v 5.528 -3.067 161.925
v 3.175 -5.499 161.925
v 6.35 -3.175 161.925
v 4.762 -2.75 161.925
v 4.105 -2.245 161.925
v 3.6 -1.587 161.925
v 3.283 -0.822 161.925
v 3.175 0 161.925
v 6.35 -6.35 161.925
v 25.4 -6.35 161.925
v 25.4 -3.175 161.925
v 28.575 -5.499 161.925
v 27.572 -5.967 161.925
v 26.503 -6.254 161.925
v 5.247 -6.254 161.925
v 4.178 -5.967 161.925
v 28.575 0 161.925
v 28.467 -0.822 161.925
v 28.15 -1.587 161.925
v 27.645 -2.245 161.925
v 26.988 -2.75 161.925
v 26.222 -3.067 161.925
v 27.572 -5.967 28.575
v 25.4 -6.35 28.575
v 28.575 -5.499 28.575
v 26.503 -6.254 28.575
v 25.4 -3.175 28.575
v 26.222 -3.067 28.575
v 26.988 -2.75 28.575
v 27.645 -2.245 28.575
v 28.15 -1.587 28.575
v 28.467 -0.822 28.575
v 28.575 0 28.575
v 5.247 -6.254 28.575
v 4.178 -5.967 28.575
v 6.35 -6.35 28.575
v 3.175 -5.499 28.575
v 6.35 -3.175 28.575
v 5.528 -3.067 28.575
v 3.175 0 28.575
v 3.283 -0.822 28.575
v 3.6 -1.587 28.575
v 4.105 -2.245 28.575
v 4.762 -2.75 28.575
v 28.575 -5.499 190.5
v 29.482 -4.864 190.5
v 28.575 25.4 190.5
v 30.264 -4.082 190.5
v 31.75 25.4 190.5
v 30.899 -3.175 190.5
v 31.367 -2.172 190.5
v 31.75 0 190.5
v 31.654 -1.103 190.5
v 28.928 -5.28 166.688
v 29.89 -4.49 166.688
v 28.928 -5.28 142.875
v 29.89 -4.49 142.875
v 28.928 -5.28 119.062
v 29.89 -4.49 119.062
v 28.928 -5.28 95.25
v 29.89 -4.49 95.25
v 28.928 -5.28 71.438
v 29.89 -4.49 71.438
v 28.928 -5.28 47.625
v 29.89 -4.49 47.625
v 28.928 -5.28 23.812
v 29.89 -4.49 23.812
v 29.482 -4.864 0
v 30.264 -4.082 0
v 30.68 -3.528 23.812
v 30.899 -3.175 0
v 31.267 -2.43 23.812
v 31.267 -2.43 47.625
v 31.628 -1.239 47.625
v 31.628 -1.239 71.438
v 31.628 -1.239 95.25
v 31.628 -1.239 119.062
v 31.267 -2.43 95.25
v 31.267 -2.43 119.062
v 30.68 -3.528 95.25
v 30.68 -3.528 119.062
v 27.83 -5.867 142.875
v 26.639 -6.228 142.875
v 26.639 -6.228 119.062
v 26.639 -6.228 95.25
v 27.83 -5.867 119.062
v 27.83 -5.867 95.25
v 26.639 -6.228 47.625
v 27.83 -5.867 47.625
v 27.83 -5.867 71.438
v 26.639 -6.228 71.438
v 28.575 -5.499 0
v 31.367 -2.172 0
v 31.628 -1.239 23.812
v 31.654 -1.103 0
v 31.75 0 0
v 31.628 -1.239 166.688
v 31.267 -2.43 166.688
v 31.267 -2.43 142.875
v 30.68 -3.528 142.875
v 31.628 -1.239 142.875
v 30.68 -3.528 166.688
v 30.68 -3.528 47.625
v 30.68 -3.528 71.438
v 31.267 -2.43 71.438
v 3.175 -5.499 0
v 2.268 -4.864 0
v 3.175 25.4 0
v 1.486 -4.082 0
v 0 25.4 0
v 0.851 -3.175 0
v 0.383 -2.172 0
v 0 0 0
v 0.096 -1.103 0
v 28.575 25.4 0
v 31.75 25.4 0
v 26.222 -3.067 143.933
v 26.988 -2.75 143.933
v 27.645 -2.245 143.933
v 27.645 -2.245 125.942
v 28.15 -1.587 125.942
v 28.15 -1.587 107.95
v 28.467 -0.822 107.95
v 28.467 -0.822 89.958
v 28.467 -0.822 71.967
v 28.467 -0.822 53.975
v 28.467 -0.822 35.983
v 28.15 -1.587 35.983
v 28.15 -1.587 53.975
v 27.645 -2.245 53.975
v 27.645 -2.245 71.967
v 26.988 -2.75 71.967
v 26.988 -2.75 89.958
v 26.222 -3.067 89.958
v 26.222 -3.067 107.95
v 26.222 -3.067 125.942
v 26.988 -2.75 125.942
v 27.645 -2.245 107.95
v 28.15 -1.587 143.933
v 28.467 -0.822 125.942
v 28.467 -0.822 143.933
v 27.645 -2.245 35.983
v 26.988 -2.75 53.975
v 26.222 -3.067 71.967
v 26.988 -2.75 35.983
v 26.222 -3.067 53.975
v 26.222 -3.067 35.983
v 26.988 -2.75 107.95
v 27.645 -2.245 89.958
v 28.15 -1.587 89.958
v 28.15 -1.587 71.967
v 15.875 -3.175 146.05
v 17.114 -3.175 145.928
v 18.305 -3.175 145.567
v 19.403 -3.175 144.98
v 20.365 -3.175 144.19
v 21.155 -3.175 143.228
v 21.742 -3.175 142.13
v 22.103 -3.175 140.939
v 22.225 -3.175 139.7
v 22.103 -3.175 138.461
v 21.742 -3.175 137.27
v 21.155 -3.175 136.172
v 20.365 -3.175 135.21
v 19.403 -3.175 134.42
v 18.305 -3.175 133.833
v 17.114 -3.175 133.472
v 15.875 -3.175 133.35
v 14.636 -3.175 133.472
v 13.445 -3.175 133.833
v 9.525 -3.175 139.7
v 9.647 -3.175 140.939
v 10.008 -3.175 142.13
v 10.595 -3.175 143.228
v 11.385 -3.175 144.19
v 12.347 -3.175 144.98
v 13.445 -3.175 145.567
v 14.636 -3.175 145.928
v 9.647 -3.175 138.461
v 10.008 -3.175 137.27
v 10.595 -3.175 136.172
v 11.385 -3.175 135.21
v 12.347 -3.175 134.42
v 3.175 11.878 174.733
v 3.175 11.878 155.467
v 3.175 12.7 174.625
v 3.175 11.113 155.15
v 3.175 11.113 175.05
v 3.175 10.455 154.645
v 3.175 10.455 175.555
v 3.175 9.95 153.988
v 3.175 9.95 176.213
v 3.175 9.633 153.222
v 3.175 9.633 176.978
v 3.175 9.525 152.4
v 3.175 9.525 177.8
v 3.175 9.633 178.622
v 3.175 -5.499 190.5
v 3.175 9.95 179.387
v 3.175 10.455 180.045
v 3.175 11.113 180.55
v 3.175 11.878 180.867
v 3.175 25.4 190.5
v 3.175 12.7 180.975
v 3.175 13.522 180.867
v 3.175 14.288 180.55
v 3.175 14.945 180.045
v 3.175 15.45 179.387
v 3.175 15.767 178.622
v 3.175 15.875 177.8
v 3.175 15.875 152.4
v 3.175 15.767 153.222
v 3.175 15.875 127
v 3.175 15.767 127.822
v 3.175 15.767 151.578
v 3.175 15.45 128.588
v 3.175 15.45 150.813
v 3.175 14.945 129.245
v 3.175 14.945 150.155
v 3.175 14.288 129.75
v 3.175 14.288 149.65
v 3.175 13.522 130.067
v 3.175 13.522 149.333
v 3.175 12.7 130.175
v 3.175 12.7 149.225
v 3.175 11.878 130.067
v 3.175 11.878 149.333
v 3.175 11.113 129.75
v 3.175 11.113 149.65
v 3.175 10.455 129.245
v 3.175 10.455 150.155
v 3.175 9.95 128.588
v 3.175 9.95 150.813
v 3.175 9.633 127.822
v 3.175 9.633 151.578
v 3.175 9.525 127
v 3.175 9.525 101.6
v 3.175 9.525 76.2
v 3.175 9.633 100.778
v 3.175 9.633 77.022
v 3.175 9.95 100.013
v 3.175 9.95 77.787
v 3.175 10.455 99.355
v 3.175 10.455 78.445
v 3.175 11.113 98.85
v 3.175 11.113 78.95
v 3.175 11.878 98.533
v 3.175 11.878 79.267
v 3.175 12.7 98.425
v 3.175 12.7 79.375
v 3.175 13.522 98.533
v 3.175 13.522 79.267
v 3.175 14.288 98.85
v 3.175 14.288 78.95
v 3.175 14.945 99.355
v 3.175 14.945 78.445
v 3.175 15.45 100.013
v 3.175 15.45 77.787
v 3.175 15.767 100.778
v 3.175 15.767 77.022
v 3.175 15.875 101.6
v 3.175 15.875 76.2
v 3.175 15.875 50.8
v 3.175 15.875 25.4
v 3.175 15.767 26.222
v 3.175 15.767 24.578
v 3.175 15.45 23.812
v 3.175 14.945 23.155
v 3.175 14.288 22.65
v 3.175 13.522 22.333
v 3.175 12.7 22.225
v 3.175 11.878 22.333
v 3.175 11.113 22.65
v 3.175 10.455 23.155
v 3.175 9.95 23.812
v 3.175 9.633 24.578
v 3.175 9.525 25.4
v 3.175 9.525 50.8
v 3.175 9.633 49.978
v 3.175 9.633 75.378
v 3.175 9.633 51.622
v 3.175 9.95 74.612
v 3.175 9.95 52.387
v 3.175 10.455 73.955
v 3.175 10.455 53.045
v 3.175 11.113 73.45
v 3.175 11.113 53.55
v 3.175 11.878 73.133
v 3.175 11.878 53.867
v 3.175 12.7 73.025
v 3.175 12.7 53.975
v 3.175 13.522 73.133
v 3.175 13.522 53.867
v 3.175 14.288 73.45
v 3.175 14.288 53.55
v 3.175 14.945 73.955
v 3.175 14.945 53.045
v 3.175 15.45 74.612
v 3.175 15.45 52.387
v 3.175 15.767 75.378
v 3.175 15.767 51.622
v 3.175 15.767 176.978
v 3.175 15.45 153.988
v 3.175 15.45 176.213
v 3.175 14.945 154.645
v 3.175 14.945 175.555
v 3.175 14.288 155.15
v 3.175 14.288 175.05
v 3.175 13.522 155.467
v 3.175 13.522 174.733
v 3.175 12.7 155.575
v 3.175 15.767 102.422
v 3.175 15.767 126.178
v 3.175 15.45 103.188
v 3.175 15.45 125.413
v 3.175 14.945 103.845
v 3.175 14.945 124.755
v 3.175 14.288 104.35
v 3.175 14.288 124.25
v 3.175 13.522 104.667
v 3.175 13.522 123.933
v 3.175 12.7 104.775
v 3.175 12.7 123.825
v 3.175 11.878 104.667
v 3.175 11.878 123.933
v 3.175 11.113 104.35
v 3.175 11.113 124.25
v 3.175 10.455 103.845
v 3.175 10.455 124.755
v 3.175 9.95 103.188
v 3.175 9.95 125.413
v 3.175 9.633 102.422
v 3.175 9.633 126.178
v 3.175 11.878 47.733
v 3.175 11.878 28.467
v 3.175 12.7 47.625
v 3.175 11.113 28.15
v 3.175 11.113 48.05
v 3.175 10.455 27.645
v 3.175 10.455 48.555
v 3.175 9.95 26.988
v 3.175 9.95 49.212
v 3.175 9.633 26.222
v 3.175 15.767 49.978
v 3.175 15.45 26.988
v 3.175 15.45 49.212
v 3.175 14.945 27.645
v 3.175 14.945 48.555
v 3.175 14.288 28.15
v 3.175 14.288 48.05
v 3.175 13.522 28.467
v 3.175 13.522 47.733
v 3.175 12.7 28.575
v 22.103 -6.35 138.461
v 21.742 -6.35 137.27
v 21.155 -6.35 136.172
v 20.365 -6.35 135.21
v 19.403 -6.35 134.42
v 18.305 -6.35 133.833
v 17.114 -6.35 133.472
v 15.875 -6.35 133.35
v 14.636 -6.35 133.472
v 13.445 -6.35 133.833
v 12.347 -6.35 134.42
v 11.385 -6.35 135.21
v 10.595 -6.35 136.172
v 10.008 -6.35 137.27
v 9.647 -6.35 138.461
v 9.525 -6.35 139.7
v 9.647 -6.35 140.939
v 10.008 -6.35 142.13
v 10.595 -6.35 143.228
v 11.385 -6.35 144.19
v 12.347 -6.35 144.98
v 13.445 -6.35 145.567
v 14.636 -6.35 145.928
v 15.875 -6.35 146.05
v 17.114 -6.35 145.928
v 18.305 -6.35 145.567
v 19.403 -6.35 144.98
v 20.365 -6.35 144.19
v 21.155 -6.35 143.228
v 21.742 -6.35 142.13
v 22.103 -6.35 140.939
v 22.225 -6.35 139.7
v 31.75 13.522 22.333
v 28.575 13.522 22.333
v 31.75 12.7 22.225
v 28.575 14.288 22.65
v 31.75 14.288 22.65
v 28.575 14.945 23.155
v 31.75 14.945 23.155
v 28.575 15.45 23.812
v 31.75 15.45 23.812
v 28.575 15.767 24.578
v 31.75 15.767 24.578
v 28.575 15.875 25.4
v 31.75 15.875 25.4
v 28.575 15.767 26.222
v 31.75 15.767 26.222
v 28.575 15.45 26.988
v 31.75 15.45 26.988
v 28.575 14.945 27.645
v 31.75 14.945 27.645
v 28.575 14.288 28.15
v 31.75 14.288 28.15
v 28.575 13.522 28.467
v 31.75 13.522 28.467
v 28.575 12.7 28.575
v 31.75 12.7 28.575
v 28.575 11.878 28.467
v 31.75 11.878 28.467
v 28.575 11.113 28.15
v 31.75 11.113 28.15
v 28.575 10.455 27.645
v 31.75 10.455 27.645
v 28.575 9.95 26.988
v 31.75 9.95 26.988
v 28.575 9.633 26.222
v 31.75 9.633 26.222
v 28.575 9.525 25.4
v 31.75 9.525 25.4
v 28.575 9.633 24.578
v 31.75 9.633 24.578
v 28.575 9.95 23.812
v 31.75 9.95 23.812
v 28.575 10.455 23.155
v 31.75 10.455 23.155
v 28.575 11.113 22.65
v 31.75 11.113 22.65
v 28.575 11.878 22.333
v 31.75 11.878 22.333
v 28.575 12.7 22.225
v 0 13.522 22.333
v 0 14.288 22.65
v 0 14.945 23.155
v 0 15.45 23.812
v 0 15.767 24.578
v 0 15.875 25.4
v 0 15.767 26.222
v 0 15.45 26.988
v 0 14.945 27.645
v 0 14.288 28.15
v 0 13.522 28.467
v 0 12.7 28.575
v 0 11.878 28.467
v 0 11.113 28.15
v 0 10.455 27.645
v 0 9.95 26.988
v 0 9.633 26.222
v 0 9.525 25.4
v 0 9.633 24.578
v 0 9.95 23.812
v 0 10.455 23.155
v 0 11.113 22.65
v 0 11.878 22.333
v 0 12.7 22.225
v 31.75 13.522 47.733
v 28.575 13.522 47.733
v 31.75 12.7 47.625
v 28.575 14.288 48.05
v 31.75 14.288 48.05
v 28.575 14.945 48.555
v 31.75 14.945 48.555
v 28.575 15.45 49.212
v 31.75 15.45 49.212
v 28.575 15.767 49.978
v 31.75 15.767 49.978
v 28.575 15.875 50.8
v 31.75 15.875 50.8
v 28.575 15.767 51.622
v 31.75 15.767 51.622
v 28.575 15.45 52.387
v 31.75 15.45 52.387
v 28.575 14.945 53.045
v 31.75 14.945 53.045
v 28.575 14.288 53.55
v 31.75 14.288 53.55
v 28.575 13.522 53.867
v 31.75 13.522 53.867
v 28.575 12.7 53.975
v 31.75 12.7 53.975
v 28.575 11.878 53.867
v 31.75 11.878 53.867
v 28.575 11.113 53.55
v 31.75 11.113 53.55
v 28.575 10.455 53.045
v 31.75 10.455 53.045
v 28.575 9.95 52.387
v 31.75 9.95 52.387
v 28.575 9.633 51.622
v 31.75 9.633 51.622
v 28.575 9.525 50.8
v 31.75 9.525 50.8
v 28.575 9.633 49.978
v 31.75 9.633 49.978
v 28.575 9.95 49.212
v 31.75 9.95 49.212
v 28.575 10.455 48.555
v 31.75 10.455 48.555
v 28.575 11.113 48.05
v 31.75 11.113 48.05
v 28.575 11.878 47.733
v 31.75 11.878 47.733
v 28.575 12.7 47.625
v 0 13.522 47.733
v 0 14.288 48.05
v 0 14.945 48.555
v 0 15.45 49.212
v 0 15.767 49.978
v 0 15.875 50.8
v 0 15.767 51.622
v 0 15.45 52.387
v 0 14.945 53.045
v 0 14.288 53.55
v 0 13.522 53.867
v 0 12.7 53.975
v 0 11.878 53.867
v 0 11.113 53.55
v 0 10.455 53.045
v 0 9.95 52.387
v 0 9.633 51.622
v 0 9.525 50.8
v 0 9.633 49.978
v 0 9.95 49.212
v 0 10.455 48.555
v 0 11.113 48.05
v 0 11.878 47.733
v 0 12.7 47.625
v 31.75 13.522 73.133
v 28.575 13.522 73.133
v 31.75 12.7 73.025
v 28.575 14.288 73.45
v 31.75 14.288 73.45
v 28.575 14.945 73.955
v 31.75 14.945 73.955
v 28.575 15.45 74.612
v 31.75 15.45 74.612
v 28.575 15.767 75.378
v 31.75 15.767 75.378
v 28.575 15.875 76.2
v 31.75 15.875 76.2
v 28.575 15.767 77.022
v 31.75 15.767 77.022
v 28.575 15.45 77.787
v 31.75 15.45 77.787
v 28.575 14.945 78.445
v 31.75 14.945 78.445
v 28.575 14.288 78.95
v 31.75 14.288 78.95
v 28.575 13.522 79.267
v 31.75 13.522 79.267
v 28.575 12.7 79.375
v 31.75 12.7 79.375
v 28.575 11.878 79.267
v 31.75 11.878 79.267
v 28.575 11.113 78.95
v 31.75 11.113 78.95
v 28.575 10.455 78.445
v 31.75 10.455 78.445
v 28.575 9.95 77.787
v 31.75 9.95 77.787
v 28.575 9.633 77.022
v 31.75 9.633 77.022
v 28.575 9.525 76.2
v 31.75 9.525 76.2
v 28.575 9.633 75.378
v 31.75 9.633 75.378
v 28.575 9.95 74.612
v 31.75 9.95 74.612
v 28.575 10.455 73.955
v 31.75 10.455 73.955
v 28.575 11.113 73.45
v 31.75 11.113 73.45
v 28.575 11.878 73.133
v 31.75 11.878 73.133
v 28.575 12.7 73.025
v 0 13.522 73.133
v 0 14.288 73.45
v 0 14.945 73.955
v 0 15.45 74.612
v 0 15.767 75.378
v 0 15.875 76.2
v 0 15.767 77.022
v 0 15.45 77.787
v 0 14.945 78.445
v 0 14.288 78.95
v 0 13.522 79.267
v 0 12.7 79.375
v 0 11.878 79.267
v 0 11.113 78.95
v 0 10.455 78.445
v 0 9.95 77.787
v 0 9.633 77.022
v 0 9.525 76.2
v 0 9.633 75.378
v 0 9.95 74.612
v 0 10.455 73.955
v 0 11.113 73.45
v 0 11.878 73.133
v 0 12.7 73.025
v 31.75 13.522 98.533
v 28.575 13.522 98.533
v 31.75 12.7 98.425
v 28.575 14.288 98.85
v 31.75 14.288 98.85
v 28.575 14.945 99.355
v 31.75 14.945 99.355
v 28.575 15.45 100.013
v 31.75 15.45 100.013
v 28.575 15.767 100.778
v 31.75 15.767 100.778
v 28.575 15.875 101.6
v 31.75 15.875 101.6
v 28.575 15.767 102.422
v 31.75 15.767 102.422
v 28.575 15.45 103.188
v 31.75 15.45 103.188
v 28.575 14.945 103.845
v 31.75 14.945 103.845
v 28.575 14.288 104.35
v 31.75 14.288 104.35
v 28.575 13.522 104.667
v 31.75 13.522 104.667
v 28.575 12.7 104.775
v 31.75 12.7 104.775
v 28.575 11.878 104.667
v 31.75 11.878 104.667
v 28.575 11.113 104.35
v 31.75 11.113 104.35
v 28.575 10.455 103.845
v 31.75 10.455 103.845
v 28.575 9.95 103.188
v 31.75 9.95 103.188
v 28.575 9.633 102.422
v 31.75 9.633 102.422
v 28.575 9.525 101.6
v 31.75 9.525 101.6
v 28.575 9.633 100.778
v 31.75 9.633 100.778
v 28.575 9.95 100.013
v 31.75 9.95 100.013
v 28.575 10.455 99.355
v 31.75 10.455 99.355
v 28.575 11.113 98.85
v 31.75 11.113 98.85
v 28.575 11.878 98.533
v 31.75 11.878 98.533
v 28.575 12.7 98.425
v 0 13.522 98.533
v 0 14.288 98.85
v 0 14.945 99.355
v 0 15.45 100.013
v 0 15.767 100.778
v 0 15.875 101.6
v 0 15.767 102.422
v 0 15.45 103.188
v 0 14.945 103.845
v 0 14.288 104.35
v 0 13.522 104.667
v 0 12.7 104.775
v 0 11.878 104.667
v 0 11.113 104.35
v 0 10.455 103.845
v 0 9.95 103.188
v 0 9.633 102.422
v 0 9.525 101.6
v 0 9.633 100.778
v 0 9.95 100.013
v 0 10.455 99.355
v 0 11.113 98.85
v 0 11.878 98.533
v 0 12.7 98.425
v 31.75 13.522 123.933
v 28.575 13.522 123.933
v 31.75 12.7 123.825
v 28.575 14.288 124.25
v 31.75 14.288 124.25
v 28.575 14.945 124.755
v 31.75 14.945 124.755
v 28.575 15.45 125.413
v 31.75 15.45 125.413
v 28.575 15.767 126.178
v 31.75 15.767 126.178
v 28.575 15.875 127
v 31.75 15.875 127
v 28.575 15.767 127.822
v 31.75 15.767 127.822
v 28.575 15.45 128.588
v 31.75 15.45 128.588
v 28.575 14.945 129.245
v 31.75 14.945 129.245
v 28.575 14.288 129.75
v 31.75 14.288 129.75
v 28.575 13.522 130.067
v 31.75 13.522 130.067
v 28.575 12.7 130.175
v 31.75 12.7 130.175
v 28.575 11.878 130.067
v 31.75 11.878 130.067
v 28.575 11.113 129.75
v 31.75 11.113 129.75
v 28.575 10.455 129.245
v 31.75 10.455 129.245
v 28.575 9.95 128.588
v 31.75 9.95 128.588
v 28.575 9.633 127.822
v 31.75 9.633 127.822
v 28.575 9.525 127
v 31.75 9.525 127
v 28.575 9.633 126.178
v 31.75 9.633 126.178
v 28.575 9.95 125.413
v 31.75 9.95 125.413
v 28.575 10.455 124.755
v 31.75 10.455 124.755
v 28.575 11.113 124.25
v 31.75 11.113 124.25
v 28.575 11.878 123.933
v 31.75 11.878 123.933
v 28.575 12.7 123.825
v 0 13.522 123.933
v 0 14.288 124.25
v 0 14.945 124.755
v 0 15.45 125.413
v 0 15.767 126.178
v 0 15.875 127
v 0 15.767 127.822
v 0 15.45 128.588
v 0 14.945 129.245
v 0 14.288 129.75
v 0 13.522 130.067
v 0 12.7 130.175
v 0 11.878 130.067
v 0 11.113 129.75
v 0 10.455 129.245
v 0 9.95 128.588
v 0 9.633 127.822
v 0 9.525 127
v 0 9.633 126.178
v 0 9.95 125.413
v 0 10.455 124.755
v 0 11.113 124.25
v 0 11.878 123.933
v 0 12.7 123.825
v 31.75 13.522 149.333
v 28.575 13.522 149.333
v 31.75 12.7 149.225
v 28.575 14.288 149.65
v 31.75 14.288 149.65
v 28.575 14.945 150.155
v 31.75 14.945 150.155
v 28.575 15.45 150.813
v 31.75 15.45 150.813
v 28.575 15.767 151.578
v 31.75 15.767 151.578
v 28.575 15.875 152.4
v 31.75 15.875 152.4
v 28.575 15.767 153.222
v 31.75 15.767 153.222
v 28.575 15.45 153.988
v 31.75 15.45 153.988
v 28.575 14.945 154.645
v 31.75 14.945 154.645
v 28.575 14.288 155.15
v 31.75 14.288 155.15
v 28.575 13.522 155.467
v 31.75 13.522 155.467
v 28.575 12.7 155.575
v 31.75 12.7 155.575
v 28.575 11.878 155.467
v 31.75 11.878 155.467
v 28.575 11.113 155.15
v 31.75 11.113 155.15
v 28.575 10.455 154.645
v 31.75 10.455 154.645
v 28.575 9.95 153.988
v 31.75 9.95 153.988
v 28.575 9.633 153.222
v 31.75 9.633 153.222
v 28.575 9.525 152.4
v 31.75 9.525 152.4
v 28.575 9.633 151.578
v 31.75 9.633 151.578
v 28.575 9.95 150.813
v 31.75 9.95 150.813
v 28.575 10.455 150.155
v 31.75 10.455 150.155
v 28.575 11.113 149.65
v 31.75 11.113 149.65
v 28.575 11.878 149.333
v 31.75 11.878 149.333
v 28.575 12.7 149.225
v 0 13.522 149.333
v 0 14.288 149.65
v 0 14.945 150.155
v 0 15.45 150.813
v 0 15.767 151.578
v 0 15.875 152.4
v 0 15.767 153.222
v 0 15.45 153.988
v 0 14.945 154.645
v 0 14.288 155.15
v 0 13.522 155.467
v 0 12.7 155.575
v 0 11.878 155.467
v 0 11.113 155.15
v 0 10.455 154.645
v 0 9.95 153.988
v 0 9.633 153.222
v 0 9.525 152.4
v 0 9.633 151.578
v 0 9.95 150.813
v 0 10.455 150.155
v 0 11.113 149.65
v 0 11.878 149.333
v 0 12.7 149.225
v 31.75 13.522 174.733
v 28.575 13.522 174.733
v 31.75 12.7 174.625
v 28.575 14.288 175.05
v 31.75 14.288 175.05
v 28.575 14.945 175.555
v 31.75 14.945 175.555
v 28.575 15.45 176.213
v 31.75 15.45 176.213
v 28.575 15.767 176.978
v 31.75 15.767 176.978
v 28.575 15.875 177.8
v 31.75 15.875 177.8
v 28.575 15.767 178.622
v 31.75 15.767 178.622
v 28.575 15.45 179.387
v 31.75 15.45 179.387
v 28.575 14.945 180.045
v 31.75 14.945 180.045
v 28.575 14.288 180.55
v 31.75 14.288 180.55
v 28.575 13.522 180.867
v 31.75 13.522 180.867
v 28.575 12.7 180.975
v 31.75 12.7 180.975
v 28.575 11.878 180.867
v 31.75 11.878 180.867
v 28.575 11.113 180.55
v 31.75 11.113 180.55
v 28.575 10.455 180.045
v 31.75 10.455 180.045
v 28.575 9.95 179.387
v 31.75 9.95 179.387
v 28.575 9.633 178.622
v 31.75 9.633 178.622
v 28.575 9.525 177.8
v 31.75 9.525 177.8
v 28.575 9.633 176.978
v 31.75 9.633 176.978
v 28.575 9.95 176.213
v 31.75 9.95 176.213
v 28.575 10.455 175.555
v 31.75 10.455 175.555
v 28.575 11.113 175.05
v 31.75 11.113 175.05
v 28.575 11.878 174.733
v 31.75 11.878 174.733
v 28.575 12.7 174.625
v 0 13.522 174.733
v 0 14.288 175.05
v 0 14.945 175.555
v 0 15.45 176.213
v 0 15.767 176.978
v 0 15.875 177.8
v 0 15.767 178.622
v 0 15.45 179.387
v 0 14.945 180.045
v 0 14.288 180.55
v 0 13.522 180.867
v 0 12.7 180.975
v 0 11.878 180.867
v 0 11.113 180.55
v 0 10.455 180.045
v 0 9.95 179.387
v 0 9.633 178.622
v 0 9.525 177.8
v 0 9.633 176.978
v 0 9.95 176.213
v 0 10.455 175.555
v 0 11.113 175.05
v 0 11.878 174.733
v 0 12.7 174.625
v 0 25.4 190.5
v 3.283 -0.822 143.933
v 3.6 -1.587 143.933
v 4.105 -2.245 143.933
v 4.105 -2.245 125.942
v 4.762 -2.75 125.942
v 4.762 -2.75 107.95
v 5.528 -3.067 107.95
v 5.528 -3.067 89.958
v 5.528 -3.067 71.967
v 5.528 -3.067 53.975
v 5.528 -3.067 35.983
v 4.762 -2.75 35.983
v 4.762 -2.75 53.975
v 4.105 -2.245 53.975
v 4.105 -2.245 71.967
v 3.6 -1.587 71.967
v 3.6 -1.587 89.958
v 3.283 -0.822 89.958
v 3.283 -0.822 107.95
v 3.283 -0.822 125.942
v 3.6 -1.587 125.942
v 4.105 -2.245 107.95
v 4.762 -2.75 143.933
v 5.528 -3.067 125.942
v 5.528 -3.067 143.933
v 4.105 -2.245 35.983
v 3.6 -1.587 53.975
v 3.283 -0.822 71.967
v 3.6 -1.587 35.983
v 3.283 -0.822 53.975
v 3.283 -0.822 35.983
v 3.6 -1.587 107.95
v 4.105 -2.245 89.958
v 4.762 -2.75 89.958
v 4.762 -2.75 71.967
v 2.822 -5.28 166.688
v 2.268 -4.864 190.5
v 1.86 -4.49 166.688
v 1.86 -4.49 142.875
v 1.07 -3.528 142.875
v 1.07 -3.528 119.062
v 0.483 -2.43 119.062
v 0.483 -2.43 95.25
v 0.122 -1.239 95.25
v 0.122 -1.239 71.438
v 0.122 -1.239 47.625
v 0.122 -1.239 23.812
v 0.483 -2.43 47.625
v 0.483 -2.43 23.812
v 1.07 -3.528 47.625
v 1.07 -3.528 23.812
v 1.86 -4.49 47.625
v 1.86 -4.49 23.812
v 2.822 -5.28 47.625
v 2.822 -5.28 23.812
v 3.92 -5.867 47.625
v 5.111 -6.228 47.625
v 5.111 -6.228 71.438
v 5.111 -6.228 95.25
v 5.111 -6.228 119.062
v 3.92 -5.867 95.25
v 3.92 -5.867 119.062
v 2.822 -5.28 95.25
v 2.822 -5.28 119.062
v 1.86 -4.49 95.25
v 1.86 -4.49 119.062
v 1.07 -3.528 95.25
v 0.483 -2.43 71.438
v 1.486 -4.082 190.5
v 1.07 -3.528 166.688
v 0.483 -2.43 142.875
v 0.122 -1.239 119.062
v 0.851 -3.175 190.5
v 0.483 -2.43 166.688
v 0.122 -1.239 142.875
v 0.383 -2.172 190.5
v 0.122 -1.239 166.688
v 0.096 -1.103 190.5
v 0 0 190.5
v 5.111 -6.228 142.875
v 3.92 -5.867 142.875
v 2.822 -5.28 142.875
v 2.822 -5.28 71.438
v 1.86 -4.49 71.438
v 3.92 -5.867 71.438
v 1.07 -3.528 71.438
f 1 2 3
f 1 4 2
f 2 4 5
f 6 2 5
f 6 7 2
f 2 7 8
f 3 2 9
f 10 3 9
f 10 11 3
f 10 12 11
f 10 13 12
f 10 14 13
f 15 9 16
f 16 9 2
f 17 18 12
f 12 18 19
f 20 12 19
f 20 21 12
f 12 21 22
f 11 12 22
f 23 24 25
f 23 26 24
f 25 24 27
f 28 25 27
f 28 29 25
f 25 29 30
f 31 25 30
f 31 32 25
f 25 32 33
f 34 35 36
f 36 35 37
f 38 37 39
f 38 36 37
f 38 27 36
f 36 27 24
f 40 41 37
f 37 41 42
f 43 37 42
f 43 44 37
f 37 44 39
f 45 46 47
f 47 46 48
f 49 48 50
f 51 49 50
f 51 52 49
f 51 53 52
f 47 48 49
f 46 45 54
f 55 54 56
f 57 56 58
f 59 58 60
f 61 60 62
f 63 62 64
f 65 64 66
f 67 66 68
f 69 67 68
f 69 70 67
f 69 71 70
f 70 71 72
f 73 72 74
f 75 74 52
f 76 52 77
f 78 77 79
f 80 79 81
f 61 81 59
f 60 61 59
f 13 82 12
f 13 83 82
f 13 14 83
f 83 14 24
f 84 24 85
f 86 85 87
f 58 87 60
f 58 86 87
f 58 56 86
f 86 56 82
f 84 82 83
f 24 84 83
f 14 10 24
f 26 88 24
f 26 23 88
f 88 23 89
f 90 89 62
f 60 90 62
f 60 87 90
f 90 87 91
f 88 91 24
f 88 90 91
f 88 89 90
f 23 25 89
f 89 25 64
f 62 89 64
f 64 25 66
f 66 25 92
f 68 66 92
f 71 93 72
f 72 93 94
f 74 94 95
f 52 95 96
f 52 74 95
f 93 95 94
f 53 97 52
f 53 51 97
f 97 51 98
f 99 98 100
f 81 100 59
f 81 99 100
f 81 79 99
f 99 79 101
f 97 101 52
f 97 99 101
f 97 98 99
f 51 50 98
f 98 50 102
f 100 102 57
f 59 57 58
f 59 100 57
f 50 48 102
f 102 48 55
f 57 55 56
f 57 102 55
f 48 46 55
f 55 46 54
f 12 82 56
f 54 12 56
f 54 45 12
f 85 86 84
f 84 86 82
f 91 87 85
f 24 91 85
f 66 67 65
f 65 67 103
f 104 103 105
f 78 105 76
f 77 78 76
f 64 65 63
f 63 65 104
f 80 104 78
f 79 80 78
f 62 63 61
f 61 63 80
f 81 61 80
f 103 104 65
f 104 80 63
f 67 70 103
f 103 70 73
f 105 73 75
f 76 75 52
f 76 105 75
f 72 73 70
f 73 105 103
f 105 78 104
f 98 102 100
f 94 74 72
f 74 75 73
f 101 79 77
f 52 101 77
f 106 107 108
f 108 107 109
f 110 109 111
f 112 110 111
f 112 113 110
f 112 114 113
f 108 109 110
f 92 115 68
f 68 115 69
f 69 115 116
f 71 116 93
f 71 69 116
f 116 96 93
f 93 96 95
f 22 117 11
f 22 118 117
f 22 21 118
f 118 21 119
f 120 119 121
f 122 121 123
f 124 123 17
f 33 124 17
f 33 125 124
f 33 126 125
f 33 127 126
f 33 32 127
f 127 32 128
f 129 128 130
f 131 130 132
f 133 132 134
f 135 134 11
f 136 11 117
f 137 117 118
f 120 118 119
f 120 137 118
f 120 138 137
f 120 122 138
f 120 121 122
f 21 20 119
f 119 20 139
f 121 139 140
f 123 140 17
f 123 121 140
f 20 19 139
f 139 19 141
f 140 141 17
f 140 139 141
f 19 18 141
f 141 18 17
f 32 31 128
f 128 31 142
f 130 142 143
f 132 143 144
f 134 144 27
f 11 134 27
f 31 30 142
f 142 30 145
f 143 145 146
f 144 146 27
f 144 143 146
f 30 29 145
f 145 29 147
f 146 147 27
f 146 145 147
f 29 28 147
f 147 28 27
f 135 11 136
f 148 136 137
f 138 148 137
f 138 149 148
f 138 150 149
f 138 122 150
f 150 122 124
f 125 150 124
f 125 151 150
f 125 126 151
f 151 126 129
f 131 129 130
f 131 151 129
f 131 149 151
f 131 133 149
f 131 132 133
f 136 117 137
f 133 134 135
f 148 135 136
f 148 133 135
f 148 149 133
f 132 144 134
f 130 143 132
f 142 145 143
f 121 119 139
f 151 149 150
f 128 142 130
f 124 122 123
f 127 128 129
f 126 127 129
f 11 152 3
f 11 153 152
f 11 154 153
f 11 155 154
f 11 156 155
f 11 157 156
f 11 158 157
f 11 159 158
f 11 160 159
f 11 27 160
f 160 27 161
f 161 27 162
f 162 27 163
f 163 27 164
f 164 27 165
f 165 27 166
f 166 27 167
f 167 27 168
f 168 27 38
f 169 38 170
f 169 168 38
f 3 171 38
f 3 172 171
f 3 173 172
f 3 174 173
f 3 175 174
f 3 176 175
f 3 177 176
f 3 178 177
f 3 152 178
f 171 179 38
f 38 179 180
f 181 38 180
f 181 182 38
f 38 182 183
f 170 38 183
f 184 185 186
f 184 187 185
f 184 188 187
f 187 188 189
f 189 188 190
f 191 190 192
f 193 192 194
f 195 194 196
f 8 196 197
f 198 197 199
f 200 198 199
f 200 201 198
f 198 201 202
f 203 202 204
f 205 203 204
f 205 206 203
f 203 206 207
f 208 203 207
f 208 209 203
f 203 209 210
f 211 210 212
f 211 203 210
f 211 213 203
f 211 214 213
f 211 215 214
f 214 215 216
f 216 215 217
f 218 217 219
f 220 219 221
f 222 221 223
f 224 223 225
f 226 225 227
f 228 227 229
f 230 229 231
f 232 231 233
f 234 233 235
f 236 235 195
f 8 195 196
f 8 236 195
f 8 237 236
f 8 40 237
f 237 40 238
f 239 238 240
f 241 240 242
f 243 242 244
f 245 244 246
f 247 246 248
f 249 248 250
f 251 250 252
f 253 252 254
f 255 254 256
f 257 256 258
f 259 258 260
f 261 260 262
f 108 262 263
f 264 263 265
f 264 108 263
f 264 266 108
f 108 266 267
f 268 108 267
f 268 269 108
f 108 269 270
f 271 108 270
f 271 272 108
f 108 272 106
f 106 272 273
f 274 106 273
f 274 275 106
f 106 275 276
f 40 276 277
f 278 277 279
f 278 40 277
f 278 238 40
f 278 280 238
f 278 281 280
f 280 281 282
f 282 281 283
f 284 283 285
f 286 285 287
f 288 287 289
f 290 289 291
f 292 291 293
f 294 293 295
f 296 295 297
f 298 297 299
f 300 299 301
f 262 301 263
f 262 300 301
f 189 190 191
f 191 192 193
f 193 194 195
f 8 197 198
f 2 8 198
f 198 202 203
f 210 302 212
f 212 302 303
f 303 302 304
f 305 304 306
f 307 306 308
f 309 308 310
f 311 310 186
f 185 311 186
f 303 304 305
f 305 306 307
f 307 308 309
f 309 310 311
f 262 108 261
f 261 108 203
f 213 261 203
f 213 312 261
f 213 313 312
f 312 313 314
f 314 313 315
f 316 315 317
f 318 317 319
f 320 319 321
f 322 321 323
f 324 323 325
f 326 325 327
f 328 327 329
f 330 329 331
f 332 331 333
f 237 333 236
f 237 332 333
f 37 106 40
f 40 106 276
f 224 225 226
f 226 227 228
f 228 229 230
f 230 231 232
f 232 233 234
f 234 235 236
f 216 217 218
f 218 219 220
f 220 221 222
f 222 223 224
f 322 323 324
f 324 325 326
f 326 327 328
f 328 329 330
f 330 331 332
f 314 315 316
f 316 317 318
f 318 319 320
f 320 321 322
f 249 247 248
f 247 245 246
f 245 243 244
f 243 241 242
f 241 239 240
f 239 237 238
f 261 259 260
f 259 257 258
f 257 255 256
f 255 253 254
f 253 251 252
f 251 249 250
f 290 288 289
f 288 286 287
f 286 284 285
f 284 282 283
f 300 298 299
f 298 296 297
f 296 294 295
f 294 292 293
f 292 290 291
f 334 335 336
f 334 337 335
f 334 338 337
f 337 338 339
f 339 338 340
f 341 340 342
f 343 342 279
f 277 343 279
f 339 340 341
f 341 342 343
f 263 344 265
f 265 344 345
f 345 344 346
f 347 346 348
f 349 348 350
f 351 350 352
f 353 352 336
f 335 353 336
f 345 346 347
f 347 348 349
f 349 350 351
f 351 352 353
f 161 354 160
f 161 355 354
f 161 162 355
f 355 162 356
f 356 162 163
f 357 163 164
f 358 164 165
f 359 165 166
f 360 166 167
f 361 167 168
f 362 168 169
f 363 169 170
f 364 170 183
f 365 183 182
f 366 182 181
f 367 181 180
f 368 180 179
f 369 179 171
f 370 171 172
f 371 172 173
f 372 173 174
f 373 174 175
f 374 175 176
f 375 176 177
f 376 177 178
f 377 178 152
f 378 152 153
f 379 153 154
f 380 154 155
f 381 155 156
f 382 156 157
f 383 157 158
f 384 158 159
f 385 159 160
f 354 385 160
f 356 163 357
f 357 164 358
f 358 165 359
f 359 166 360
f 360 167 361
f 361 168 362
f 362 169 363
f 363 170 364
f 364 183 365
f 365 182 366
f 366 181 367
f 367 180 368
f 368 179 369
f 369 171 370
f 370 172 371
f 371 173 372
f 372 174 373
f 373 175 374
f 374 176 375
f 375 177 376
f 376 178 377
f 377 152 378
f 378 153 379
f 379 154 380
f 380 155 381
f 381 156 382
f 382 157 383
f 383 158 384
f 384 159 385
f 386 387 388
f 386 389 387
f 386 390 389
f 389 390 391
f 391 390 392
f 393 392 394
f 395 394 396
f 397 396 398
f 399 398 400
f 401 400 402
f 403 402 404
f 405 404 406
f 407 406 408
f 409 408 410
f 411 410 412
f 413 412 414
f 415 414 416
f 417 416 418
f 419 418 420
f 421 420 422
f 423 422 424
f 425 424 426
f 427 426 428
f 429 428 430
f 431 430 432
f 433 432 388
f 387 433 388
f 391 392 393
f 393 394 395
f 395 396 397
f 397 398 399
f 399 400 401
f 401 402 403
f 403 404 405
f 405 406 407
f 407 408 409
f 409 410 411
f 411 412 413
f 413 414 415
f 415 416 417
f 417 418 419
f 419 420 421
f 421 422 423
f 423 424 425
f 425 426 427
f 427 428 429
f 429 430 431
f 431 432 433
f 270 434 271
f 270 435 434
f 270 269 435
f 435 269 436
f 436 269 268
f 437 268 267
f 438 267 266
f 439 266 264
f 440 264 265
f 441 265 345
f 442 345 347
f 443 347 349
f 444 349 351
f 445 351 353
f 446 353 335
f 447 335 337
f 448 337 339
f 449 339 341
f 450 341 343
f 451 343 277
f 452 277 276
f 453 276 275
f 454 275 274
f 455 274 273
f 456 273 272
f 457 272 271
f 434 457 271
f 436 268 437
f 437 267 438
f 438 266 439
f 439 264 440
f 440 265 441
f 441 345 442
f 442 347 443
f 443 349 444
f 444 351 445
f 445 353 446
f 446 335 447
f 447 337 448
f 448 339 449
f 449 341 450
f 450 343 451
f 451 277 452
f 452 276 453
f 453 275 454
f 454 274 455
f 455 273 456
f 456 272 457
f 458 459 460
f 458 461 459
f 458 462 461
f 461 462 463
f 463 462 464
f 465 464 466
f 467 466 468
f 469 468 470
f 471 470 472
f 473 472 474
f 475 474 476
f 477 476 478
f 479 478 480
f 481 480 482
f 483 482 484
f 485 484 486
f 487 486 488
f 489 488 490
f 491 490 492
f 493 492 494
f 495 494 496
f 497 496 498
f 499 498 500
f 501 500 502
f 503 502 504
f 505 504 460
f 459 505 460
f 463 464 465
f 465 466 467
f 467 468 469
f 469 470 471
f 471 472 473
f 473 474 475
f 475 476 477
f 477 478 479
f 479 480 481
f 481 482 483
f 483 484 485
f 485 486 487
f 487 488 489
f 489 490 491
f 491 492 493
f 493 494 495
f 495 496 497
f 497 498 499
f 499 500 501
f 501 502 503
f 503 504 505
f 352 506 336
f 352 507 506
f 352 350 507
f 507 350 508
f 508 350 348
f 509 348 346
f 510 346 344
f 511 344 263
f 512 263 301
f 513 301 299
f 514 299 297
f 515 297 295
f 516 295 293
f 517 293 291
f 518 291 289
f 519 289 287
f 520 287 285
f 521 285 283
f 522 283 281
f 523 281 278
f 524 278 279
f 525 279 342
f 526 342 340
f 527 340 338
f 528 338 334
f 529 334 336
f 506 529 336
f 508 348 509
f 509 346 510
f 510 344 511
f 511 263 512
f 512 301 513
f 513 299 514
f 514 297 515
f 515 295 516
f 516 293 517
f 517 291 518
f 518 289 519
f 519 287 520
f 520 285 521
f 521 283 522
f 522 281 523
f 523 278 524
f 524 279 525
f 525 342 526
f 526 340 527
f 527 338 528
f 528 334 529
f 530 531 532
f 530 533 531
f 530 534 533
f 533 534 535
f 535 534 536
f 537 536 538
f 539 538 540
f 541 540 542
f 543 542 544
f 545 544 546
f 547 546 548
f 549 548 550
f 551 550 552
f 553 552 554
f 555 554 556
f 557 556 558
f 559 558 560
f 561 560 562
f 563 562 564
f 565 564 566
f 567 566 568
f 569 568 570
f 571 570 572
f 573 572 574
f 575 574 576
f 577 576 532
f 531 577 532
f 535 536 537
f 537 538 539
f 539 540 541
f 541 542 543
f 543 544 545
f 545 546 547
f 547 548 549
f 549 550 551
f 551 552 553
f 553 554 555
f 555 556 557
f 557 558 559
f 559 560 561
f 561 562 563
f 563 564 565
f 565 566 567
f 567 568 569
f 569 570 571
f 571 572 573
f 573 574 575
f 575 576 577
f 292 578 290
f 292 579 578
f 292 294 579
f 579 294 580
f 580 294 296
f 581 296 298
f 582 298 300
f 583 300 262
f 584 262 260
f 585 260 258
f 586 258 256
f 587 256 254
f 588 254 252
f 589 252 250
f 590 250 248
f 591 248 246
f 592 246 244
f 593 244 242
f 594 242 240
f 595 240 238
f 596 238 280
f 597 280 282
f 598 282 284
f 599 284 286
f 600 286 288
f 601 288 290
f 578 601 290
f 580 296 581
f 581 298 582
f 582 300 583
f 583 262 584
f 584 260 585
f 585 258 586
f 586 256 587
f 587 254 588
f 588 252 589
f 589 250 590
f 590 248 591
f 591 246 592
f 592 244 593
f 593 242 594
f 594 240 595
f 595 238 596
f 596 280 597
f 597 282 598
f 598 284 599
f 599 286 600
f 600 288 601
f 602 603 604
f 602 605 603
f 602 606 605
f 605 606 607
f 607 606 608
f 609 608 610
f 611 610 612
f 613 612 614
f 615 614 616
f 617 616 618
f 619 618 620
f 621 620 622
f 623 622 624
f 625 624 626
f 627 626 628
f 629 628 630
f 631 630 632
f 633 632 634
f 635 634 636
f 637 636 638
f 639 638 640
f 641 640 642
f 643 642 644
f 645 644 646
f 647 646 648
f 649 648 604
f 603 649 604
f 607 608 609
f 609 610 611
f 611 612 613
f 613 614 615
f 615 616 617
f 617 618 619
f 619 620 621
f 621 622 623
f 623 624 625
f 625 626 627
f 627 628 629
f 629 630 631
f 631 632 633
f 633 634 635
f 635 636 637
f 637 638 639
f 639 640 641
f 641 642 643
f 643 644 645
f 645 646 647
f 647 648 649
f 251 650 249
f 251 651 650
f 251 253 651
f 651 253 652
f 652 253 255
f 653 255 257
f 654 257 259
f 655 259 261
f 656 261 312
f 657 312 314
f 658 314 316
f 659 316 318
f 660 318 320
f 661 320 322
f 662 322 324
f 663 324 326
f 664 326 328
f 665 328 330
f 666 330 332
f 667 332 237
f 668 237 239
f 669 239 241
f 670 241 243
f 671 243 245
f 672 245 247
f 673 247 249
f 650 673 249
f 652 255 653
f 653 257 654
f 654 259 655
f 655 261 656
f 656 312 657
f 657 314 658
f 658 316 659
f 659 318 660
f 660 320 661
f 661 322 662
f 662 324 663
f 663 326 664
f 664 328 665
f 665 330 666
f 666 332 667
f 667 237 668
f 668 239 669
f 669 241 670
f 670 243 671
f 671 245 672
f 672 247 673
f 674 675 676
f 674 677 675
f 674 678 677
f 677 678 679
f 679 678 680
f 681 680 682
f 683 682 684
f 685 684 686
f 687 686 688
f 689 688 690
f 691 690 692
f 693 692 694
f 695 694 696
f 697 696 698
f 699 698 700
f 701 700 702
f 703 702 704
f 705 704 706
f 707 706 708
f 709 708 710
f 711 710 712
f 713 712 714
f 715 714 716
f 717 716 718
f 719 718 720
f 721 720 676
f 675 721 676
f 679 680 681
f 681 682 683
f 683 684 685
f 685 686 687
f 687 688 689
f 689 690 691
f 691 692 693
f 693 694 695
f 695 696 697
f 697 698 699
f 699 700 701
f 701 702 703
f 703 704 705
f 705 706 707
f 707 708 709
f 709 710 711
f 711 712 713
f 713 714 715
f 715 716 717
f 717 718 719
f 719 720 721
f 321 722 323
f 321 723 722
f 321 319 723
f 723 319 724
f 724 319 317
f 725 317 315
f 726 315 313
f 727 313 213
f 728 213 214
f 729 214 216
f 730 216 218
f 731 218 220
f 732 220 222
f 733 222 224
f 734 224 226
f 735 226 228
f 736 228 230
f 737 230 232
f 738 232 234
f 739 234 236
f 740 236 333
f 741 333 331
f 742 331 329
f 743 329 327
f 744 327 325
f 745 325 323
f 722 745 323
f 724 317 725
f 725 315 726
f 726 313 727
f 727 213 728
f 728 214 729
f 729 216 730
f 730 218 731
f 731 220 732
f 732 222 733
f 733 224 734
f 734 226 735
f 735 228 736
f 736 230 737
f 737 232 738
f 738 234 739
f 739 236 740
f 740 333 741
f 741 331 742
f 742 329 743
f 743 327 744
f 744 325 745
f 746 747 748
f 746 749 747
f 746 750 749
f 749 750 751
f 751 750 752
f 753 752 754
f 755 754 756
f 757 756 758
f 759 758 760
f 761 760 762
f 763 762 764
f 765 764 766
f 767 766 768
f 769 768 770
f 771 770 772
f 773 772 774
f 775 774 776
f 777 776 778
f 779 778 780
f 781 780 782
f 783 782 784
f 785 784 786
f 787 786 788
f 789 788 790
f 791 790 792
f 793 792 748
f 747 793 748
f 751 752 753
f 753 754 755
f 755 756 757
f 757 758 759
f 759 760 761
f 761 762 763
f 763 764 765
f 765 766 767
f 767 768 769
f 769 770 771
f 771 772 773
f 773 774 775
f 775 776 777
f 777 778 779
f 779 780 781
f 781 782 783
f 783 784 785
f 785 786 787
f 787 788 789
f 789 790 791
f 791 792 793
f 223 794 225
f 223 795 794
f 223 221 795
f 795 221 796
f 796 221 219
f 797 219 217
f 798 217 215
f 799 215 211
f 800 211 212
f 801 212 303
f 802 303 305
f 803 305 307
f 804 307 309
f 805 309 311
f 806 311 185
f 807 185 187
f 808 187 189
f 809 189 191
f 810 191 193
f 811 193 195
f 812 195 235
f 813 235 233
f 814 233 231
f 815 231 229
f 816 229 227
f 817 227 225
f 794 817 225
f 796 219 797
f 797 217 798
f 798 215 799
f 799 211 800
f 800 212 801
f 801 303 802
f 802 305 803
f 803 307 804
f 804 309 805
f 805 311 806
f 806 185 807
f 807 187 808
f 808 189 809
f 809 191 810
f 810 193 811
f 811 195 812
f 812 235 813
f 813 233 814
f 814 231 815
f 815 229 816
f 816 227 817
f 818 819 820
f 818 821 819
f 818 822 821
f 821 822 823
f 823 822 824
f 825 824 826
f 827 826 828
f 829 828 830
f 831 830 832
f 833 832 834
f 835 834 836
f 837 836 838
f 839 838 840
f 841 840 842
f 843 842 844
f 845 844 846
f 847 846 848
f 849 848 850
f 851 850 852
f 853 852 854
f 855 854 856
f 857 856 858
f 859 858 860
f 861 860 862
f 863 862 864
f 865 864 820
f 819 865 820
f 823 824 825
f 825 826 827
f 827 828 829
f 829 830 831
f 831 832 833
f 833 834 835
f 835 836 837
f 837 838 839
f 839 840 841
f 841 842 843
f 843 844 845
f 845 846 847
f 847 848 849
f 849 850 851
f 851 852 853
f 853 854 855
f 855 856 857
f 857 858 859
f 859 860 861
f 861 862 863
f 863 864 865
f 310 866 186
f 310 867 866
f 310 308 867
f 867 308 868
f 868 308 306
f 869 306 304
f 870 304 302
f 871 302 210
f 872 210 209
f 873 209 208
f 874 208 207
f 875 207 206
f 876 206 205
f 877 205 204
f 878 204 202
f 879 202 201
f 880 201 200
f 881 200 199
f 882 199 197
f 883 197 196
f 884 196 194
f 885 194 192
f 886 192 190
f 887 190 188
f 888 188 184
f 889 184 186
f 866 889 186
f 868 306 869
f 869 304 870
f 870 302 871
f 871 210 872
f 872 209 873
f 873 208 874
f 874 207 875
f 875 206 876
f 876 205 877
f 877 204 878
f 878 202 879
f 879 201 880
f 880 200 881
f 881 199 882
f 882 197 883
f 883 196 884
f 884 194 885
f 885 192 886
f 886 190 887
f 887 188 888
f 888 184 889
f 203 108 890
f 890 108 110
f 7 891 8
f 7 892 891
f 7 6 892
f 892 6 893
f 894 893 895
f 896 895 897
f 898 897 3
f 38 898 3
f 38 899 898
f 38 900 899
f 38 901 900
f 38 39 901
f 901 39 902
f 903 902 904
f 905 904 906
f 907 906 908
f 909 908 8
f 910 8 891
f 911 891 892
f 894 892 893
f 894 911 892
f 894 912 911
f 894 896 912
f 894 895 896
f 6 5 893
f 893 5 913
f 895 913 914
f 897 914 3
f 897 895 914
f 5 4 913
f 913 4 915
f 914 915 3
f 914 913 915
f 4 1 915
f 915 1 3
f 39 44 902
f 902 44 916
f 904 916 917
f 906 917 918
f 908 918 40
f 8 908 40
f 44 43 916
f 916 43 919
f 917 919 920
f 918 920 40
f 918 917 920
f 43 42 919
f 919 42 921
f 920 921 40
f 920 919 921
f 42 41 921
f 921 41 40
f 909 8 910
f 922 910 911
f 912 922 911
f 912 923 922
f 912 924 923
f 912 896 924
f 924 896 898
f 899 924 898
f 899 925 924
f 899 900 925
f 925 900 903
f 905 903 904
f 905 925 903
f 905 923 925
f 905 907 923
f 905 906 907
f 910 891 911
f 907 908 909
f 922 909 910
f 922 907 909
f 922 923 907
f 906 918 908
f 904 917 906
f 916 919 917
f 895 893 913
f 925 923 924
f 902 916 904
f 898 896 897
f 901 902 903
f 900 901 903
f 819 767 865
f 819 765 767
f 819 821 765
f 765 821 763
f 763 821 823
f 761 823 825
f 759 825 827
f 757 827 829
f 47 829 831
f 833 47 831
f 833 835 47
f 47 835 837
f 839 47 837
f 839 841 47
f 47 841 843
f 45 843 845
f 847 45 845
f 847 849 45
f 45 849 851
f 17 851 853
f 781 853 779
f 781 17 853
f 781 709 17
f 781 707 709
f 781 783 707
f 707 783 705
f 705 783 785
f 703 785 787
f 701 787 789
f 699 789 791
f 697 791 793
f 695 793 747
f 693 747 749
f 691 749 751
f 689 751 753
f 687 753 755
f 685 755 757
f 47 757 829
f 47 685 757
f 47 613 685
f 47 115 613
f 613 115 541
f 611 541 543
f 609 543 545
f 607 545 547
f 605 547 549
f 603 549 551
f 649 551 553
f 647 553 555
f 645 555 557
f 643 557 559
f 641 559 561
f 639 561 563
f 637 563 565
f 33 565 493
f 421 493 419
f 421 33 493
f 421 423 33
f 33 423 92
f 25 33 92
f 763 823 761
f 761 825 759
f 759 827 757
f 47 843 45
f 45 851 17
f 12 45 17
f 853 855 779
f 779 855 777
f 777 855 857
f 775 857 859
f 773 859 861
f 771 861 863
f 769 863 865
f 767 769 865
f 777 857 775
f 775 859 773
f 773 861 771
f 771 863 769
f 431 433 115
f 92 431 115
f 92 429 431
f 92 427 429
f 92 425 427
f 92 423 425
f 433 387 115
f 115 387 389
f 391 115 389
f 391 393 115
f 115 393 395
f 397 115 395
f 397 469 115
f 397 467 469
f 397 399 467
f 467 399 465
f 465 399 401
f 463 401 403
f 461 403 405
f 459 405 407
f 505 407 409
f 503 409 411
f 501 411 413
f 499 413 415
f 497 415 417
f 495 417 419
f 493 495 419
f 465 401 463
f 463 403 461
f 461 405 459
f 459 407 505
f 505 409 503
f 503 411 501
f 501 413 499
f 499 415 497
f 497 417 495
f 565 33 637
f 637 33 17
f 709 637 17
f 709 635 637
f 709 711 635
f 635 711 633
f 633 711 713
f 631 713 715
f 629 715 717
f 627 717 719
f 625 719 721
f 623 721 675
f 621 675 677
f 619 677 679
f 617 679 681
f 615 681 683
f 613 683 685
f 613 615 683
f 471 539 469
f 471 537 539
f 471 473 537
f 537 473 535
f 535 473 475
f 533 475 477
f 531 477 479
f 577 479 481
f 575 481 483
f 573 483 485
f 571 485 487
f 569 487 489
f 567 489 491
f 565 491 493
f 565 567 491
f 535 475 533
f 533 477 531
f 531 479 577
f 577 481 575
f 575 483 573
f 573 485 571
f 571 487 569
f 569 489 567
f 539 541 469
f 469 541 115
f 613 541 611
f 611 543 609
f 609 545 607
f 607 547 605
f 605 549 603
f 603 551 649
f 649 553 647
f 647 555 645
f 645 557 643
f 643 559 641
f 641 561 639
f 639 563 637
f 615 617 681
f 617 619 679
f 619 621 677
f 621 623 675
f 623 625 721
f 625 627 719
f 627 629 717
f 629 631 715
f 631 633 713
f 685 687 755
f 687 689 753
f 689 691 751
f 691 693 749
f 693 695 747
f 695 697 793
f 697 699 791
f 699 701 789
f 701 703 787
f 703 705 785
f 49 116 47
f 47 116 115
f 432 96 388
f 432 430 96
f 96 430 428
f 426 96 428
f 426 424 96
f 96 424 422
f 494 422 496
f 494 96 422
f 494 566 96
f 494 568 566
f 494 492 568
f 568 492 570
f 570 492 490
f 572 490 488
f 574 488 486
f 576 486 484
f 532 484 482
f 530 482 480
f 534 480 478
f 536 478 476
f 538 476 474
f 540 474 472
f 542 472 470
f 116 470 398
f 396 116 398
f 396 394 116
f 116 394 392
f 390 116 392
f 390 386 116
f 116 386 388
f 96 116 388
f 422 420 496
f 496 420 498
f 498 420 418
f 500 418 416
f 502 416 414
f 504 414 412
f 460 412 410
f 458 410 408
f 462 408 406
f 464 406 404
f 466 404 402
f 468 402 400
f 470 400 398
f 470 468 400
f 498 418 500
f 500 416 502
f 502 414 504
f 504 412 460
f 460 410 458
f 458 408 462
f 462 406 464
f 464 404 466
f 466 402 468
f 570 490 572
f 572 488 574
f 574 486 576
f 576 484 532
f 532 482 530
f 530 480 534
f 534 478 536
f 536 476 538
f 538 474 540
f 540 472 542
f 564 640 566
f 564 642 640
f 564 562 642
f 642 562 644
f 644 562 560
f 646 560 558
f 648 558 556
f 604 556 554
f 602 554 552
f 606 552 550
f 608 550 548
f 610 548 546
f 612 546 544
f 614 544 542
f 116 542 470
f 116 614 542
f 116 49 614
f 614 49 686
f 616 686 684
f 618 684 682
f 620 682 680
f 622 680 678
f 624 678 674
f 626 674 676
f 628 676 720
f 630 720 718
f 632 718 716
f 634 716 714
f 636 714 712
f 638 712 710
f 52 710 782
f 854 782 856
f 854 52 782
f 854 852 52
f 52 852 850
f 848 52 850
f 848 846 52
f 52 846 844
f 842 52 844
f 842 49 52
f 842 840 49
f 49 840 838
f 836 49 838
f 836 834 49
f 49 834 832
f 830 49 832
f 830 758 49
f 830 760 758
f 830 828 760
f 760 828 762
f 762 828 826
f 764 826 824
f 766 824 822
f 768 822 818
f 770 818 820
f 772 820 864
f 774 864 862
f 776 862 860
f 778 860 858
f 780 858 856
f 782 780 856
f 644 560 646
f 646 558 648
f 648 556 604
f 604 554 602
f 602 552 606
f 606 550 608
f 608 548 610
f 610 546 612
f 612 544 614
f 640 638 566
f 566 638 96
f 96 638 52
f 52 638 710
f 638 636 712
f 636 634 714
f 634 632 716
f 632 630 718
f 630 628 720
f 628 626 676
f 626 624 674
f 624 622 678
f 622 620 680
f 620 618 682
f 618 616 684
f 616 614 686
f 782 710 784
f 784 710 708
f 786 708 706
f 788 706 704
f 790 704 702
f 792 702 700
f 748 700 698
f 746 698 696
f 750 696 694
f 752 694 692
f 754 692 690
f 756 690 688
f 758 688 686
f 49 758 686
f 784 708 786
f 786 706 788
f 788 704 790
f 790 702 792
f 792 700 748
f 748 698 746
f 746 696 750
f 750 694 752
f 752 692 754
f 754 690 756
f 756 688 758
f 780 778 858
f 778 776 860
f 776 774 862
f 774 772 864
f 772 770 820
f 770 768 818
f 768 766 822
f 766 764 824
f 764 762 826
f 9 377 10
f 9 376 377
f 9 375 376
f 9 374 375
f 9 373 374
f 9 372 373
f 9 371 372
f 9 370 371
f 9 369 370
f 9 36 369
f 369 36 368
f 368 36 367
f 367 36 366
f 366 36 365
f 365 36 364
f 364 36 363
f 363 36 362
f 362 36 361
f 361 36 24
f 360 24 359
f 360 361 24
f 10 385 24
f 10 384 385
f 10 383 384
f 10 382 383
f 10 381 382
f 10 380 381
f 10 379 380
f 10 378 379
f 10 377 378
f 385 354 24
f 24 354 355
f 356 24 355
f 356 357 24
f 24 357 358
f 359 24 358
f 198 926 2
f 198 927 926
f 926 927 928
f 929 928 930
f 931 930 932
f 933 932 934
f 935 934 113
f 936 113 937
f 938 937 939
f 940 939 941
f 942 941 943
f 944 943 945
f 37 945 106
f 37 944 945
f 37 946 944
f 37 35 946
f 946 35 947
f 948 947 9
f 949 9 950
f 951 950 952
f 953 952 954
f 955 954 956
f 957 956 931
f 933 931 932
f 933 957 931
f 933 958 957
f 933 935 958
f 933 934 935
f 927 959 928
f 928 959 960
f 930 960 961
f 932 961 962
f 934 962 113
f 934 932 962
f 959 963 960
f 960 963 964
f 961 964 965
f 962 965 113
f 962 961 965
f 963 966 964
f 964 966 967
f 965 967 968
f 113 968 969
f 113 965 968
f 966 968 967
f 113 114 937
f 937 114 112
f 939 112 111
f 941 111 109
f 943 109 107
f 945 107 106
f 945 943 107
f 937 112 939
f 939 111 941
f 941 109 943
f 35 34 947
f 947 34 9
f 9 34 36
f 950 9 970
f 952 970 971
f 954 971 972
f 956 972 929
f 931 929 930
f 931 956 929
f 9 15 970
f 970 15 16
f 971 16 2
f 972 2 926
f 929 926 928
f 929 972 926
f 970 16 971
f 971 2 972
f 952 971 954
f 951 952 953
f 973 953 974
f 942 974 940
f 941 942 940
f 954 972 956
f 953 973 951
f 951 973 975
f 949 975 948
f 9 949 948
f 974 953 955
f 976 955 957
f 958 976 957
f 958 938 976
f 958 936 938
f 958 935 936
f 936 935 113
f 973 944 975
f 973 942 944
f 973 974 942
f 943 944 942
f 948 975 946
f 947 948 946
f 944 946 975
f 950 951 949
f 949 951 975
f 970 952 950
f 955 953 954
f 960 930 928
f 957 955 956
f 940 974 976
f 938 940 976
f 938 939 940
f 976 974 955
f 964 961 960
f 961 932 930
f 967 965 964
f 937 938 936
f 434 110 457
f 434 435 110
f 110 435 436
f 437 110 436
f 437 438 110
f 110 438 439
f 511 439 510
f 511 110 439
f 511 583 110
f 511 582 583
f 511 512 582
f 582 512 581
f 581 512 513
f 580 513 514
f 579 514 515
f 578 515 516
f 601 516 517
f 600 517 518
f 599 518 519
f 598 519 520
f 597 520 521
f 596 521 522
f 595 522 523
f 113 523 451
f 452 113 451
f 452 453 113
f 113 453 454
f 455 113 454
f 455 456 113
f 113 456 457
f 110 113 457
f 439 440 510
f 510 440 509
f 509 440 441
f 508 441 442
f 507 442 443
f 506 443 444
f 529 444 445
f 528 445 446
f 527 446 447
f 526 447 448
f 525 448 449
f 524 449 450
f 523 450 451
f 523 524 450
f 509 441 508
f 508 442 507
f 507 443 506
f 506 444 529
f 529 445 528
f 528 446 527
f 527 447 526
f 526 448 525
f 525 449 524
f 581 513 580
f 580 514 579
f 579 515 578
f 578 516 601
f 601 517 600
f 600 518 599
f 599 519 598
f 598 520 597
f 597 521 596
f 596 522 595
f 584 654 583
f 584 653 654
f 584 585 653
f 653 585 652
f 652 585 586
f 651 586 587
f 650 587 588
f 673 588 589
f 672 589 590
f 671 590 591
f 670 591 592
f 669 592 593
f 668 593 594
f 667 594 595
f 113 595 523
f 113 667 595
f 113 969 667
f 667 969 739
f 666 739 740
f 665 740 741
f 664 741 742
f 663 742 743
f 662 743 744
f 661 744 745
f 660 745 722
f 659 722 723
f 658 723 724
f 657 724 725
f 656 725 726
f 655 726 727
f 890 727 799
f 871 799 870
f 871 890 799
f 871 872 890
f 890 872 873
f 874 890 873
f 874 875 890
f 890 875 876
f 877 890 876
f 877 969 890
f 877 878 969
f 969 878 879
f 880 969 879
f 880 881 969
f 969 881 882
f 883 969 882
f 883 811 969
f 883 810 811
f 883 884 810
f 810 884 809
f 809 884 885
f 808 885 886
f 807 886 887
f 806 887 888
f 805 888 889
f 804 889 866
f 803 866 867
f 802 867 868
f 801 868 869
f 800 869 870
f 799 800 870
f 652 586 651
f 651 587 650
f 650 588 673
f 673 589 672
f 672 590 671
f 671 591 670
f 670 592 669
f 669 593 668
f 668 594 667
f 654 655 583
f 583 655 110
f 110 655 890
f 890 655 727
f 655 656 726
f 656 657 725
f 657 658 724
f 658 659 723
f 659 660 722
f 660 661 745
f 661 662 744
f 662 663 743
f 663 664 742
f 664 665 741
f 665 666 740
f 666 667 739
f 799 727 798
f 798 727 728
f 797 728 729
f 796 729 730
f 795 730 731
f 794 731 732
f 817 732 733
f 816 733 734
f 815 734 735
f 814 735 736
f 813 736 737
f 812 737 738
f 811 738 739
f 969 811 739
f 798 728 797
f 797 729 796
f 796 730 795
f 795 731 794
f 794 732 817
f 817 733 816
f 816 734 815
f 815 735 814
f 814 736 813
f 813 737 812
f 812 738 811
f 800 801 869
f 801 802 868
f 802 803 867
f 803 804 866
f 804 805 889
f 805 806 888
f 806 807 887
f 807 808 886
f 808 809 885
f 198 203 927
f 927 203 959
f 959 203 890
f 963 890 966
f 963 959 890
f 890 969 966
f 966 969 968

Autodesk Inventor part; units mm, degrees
ref_plane "YZ Plane" through (0, 0, 0) normal (1, 0, 0) x (0, 1, 0)
ref_plane "XZ Plane" through (0, 0, 0) normal (0, 1, 0) x (-1, 0, 0)
ref_plane "XY Plane" through (0, 0, 0) normal (0, 0, 1) x (1, 0, 0)
sketch "Sketch1" plane through (0, 0, 0) normal (0, 0, 1) x (1, 0, 0)
  line L0 (0, 25.4) -> (0, 0)
  line L1 (6.35, -6.35) -> (25.4, -6.35)
  line L2 (31.75, 0) -> (31.75, 25.4)
  line L3 (31.75, 25.4) -> (28.575, 25.4)
  line L4 (28.575, 25.4) -> (28.575, 0)
  line L5 (25.4, -3.175) -> (6.35, -3.175)
  line L6 (3.175, 0) -> (3.175, 25.4)
  line L7 (3.175, 25.4) -> (0, 25.4)
  arc A0 (3.175, 0) -> (6.35, -3.175) centre (6.35, 0) ccw
  arc A1 (0, 0) -> (6.35, -6.35) centre (6.35, 0) ccw
  arc A2 (25.4, -3.175) -> (28.575, 0) centre (25.4, 0) ccw
  arc A3 (25.4, -6.35) -> (31.75, 0) centre (25.4, 0) ccw
  dimension "d0" = 3.175
  dimension "d1" = 25.4
  dimension "d2" = 25.4
  dimension "d3" = 3.175
extrude "Extrusion1" add sketch "Sketch1" along normal blind 190.5
sketch "Sketch2" plane through (31.75, 0, 0) normal (1, 0, 0) x (0, 0, -1)
  line L0 (-190.5, 25.4) -> (-190.5, 0) projected
  line L1 (0, 25.4) -> (-190.5, 25.4) projected
  circle A0 centre (-177.8, 12.7) radius 3.175
  dimension "d6" = 6.35
  dimension "d7" = 12.7
  dimension "d8" = 12.7
extrude "Extrusion2" cut sketch "Sketch2" against normal through all
pattern_linear "Rectangular Pattern1" count 7 spacing 25.4 along (0, 0, -1) of "Extrusion2"
sketch "Sketch3" plane through (6.35, -6.35, 0) normal (0, -1, 0) x (1, 0, 0)
  line L0 (19.05, 190.5) -> (0, 190.5) projected
  circle A0 centre (9.525, 139.7) radius 6.35
  point P0 (-6.35, 0)
  dimension "d14" = 12.7
  dimension "d15" = 50.8
extrude "Extrusion3" cut sketch "Sketch3" against normal up to next
sketch "Sketch4" plane through (6.35, -6.35, 0) normal (0, -1, 0) x (1, 0, 0)
  line L0 (19.05, 190.5) -> (0, 190.5) projected
  line L1 (0, 0) -> (0, 190.5) projected
  line L2 (0, 0) -> (19.05, 0) projected
  line L3 (19.05, 0) -> (19.05, 190.5) projected
  line L4 (-3.175, 190.5) -> (22.225, 190.5)
  line L5 (22.225, 190.5) -> (22.225, 161.925)
  line L6 (22.225, 161.925) -> (-3.175, 161.925)
  line L7 (-3.175, 161.925) -> (-3.175, 190.5)
  line L8 (-3.175, 165.9576) -> (0, 165.9576) construction
  line L9 (19.05, 165.9576) -> (22.225, 165.9576) construction
  line L10 (-3.175, 0) -> (22.225, 0)
  line L11 (22.225, 0) -> (22.225, 28.575)
  line L12 (22.225, 28.575) -> (-3.175, 28.575)
  line L13 (-3.175, 28.575) -> (-3.175, 0)
  line L14 (-6.35, 190.5) -> (-3.175, 190.5)
  line L15 (-3.175, 190.5) -> (-3.175, 161.925)
  line L16 (-3.175, 161.925) -> (-6.35, 161.925)
  line L17 (-6.35, 161.925) -> (-6.35, 190.5)
  point P0 (-6.35, 0)
  dimension "d18" = 25.4
  dimension "d19" = 28.575
  dimension "d20" = 0
  dimension "d21" = 0
extrude "Extrusion4" cut sketch "Sketch4" against normal through all contours L3 L6 L1 L0 | L4 L5 L6 L3 | L1 L6 L7 L4 | L12 L11 L10 L3 | L3 L2 L1 L12 | L1 L10 L13 L12
properties part number "Frame_OuterConveyorMount" material "Aluminum-6061"
